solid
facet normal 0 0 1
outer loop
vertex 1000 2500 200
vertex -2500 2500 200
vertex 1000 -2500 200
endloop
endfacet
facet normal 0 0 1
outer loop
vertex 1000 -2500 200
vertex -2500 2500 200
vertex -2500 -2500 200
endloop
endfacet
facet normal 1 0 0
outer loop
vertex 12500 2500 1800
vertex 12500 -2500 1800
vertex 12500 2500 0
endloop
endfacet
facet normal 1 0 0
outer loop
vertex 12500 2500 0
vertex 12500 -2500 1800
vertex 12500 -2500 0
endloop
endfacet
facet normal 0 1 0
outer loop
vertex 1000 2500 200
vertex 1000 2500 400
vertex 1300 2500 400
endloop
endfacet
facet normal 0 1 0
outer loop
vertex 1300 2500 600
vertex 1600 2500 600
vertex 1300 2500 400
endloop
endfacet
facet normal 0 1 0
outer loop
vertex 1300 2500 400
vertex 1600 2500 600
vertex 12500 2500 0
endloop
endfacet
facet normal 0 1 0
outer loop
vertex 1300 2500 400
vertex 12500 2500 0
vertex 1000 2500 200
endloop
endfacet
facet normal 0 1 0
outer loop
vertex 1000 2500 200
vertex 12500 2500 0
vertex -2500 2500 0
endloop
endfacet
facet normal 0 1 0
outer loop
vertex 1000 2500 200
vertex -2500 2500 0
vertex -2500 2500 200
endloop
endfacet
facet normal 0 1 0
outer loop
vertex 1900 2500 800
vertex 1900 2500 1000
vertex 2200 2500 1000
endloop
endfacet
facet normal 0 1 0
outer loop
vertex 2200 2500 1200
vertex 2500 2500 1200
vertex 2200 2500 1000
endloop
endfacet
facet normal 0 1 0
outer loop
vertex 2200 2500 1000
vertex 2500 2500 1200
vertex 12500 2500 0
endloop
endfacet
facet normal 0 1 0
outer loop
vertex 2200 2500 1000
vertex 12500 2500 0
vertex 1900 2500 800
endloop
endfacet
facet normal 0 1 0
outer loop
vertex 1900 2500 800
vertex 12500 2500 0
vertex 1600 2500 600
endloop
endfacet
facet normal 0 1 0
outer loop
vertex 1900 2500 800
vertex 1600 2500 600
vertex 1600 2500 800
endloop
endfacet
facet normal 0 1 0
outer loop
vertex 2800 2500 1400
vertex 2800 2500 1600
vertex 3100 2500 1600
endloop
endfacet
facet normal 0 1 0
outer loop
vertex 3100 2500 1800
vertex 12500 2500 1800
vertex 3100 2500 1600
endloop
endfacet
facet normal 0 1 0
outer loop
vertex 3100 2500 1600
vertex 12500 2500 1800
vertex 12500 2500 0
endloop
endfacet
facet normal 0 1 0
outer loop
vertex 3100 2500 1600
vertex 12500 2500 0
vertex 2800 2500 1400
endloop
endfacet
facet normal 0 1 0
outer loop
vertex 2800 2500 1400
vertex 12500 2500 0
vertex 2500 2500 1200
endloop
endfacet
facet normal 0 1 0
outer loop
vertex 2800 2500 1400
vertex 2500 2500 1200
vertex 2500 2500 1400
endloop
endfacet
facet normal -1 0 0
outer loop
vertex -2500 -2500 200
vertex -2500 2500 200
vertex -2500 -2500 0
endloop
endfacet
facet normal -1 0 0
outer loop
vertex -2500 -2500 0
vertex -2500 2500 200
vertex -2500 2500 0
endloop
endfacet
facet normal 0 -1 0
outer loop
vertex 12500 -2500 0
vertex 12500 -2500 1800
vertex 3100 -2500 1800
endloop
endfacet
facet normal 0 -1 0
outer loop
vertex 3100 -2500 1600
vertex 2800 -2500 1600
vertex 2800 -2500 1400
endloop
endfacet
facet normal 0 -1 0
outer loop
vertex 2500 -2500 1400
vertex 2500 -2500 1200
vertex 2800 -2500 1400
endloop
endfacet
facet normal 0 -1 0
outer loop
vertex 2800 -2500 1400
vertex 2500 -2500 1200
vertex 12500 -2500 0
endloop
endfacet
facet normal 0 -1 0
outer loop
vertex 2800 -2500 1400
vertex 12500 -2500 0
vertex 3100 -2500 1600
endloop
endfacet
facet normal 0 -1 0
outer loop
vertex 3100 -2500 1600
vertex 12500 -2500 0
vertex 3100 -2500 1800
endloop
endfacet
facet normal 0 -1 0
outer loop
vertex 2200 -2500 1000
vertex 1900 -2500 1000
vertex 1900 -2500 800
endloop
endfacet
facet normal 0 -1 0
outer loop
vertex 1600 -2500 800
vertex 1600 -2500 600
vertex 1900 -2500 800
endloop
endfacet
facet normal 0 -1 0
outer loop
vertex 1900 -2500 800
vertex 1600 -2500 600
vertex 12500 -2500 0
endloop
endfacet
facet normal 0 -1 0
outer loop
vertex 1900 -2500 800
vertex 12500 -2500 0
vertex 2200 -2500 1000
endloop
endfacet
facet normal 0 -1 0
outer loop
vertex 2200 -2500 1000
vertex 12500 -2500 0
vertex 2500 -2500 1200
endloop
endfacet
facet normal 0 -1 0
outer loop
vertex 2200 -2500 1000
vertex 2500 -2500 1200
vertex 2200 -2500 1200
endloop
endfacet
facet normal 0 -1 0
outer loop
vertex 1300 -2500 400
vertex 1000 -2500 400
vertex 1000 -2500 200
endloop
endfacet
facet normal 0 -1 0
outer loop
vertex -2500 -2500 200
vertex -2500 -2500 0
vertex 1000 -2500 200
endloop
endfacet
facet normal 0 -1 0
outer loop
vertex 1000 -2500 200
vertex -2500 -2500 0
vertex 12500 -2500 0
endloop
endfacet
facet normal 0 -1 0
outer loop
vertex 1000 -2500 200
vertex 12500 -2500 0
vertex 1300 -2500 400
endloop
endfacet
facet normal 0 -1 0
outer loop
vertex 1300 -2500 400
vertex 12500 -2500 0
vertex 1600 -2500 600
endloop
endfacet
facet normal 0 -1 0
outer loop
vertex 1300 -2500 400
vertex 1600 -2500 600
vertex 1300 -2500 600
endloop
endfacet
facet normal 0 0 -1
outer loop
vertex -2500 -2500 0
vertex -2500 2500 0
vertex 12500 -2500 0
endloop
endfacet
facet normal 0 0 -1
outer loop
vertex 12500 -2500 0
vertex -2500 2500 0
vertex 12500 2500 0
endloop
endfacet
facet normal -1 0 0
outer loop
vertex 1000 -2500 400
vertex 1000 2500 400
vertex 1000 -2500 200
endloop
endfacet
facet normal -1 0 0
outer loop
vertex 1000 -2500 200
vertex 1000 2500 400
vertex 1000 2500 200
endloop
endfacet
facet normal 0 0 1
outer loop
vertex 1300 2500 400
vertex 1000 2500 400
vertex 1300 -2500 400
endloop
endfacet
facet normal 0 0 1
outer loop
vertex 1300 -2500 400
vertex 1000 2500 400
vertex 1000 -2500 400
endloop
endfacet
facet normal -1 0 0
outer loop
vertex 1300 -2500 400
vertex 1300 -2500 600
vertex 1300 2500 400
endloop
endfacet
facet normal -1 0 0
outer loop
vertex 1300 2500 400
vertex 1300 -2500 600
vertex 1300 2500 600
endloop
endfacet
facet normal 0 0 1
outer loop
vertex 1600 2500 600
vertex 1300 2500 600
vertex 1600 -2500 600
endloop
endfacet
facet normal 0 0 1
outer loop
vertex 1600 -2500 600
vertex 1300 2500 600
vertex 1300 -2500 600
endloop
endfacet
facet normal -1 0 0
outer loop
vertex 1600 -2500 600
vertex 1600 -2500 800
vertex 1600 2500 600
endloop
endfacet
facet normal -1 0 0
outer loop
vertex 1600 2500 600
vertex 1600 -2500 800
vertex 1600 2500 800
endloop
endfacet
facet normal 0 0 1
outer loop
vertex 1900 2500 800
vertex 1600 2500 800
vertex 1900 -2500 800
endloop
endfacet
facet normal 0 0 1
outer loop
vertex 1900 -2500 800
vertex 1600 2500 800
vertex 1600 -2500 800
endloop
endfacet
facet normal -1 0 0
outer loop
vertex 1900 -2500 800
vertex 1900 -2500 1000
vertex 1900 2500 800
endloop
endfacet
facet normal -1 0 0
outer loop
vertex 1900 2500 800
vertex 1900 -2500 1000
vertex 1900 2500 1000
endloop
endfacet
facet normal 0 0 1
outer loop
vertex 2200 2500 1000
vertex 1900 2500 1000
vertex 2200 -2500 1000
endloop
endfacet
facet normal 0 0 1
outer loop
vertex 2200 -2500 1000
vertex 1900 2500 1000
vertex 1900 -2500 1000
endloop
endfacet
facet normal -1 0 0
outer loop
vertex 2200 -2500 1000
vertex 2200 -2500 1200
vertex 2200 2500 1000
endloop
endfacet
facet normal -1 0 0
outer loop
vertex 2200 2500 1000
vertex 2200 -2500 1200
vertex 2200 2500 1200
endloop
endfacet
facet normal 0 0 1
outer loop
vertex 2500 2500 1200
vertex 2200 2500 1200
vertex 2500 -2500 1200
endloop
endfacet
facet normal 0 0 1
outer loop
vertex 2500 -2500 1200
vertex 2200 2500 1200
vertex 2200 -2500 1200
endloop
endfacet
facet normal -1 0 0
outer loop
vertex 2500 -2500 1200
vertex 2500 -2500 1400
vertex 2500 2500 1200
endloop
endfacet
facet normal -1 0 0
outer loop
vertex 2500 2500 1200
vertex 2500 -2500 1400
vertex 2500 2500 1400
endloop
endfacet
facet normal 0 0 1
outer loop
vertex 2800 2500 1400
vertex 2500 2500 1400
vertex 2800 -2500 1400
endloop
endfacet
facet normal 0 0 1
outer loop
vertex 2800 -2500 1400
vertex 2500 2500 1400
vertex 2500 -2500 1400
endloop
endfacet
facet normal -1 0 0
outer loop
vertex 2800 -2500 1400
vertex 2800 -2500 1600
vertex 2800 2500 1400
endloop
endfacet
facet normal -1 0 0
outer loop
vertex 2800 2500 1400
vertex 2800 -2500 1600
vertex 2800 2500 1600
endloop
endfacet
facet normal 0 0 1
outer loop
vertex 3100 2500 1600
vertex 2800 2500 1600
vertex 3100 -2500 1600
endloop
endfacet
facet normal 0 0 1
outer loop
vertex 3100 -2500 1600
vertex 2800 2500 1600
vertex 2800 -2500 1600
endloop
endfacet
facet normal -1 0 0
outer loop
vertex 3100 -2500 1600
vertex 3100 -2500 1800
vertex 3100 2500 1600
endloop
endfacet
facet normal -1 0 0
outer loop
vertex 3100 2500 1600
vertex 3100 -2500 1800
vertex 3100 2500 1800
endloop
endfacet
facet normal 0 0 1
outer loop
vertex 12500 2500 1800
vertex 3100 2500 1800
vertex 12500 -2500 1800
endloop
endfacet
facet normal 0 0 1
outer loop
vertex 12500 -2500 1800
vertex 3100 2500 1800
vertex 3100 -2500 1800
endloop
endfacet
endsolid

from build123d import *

# Parameters (mm, degrees)
SKETCH3_W            = 15000
SKETCH3_H            = 5000
BOSS_EXTRUDE1_DEPTH  = 200
SKETCH4_W            = 300
SKETCH4_H            = 5000
STEP1_DEPTH          = 200
SKETCH4_4_W          = 300
SKETCH4_4_H          = 5000
STEP2_DEPTH          = 400
SKETCH4_5_W          = 300
SKETCH4_5_H          = 5000
STEP3_DEPTH          = 600
SKETCH4_6_W          = 300
SKETCH4_6_H          = 5000
STEP4_DEPTH          = 800
SKETCH4_7_W          = 300
SKETCH4_7_H          = 5000
BOSS_EXTRUDE7_DEPTH  = 1000
SKETCH4_8_W          = 300
SKETCH4_8_H          = 5000
BOSS_EXTRUDE8_DEPTH  = 1200
SKETCH4_9_W          = 300
SKETCH4_9_H          = 5000
BOSS_EXTRUDE9_DEPTH  = 1400
SKETCH4_10_W         = 300
SKETCH4_10_H         = 5000
BOSS_EXTRUDE10_DEPTH = 1600
SKETCH8_W            = 9100
SKETCH8_H            = 5000
BOSS_EXTRUDE11_DEPTH = 1600


with BuildPart() as part:
    # Sketch3 → Boss-Extrude1 (new body)
    with BuildSketch(Plane.XY):
        with Locations((5000, 0)):
            Rectangle(SKETCH3_W, SKETCH3_H)
    extrude(amount=BOSS_EXTRUDE1_DEPTH)

    # Sketch4 → Step1 (add)
    with BuildSketch(Plane.XY.offset(200)):
        with Locations((1150, 0)):
            Rectangle(SKETCH4_W, SKETCH4_H)
    extrude(amount=STEP1_DEPTH)

    # Sketch4<4> → Step2 (add)
    with BuildSketch(Plane.XY.offset(200)):
        with Locations((1450, 0)):
            Rectangle(SKETCH4_4_W, SKETCH4_4_H)
    extrude(amount=STEP2_DEPTH)

    # Sketch4<5> → Step3 (add)
    with BuildSketch(Plane.XY.offset(200)):
        with Locations((1750, 0)):
            Rectangle(SKETCH4_5_W, SKETCH4_5_H)
    extrude(amount=STEP3_DEPTH)

    # Sketch4<6> → Step4 (add)
    with BuildSketch(Plane.XY.offset(200)):
        with Locations((2050, 0)):
            Rectangle(SKETCH4_6_W, SKETCH4_6_H)
    extrude(amount=STEP4_DEPTH)

    # Sketch4<7> → Boss-Extrude7 (add)
    with BuildSketch(Plane.XY.offset(200)):
        with Locations((2350, 0)):
            Rectangle(SKETCH4_7_W, SKETCH4_7_H)
    extrude(amount=BOSS_EXTRUDE7_DEPTH)

    # Sketch4<8> → Boss-Extrude8 (add)
    with BuildSketch(Plane.XY.offset(200)):
        with Locations((2650, 0)):
            Rectangle(SKETCH4_8_W, SKETCH4_8_H)
    extrude(amount=BOSS_EXTRUDE8_DEPTH)

    # Sketch4<9> → Boss-Extrude9 (add)
    with BuildSketch(Plane.XY.offset(200)):
        with Locations((2950, 0)):
            Rectangle(SKETCH4_9_W, SKETCH4_9_H)
    extrude(amount=BOSS_EXTRUDE9_DEPTH)

    # Sketch4<10> → Boss-Extrude10 (add)
    with BuildSketch(Plane.XY.offset(200)):
        with Locations((3250, 0)):
            Rectangle(SKETCH4_10_W, SKETCH4_10_H)
    extrude(amount=BOSS_EXTRUDE10_DEPTH)

    # Sketch8 → Boss-Extrude11 (add)
    with BuildSketch(Plane.XY.offset(200)):
        with Locations((7950, 0)):
            Rectangle(SKETCH8_W, SKETCH8_H)
    extrude(amount=BOSS_EXTRUDE11_DEPTH)


solid = part.part
